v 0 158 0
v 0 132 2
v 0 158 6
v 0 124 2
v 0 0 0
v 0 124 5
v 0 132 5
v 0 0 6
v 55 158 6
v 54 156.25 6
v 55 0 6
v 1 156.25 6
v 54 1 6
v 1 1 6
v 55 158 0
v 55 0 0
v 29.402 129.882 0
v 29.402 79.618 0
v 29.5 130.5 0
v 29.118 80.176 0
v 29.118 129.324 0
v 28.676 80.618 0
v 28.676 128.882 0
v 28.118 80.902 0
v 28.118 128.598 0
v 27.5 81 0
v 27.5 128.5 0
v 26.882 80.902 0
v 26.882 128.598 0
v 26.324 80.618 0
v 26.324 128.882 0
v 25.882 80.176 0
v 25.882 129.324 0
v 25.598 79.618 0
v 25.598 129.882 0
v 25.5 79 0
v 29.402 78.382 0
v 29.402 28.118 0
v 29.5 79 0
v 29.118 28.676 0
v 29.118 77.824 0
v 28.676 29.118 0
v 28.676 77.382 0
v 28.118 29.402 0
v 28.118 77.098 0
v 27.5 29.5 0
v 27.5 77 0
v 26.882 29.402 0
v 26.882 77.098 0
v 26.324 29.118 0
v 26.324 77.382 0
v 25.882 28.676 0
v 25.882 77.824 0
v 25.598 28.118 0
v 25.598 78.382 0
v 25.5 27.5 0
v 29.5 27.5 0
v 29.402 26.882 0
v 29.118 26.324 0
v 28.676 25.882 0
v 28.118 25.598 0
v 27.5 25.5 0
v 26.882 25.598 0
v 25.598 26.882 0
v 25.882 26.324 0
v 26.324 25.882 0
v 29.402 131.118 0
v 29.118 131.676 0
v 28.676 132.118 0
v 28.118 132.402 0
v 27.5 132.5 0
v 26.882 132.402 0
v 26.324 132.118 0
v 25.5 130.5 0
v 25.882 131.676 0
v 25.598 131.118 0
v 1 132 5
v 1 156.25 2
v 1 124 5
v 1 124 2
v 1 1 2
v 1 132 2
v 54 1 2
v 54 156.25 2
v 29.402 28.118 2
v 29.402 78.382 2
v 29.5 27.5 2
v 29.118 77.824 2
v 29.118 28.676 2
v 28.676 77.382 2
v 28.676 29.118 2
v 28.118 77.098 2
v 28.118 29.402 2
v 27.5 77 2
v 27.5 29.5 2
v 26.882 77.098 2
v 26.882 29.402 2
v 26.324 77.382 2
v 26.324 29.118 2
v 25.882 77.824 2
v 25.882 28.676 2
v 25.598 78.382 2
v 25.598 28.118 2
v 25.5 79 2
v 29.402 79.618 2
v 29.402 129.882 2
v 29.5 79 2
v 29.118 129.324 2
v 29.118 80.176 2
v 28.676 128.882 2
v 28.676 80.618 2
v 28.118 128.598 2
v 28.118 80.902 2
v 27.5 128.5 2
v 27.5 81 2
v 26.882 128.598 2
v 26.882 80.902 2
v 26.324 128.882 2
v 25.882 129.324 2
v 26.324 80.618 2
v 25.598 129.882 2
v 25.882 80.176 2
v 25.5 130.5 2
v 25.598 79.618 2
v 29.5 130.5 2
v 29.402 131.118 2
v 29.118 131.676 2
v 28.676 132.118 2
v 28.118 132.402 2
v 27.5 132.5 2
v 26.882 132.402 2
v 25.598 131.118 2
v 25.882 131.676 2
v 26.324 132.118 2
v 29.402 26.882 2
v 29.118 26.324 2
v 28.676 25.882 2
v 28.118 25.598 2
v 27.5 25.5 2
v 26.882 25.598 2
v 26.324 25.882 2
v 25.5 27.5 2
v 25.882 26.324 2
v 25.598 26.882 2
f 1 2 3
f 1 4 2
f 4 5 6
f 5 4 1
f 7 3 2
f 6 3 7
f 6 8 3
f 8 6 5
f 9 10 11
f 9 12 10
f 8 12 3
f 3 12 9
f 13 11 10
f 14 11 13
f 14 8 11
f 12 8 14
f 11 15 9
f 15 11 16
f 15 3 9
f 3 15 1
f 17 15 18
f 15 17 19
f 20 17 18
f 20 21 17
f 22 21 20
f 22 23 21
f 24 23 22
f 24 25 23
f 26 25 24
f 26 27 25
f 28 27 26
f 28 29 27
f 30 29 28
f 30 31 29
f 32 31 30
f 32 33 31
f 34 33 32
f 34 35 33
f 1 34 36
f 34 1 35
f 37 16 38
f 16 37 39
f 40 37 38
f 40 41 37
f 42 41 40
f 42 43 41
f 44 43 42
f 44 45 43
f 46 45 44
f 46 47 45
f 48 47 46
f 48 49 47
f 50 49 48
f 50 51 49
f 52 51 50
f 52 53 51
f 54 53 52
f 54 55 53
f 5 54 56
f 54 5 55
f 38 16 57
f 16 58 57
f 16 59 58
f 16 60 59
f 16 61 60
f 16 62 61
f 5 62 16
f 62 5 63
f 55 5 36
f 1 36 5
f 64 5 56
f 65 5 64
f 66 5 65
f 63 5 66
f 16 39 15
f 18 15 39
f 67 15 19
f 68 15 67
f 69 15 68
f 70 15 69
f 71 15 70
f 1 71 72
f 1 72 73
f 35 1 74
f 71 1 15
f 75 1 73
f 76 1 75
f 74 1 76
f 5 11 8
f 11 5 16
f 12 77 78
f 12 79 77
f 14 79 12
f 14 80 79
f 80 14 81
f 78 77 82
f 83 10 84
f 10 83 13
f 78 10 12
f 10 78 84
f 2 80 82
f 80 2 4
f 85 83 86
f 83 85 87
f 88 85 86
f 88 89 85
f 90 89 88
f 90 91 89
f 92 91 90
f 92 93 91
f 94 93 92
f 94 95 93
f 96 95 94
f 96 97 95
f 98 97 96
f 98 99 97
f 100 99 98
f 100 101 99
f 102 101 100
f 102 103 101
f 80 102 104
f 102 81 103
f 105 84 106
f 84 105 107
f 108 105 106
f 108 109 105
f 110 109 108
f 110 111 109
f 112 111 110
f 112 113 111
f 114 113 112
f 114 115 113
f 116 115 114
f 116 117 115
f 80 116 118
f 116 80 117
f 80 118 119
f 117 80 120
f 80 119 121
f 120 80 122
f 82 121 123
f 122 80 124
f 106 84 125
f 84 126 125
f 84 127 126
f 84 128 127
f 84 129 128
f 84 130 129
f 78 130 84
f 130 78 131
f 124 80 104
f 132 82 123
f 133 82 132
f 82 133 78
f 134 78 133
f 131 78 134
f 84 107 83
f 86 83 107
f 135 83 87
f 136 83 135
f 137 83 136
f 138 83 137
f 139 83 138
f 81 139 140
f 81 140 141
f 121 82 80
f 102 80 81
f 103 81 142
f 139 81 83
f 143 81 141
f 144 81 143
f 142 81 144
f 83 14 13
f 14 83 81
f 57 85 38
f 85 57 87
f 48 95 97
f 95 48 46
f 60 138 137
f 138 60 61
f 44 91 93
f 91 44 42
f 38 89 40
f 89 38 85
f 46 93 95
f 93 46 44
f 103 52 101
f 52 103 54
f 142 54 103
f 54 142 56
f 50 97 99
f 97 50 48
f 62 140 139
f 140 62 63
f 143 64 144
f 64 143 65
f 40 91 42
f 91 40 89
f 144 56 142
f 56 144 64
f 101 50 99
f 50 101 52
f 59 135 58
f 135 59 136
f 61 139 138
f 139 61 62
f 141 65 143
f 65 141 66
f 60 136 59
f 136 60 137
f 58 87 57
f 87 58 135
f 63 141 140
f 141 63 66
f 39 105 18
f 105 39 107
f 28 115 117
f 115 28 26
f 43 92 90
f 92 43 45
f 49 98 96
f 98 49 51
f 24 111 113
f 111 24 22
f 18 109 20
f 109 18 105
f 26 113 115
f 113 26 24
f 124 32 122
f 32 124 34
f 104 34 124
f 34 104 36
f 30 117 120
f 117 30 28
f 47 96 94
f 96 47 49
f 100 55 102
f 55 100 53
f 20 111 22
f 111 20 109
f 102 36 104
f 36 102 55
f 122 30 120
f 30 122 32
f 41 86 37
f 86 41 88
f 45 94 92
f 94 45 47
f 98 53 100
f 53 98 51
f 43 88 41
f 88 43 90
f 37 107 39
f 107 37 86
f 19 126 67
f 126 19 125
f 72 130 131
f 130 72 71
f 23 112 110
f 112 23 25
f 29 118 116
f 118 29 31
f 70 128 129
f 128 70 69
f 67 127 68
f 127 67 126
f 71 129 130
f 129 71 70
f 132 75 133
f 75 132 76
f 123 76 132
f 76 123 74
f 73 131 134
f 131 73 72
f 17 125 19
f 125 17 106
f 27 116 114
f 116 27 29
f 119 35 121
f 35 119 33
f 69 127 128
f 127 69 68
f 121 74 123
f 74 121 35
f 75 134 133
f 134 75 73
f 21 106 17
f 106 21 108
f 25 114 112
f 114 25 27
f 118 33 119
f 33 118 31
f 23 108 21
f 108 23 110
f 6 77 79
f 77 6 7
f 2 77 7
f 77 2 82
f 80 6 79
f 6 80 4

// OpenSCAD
$fn = 20;
wallHeight = 6;
postDiameter = 2;

difference()
{
    cube([55,158,wallHeight],false);
    
    //Carve out the cube
    translate([1,1,2]) cube([53,155.25,wallHeight],false);
    
    translate([27.5,27.5,-2]) cylinder(wallHeight,postDiameter,postDiameter);
 
 
    translate([27.5,79,-2]) cylinder(wallHeight,postDiameter,postDiameter);

    translate([27.5,130.5,-2]) cylinder(wallHeight,postDiameter,postDiameter);


    //translate([-2,21,2]) cube([3,8,3],false);
    translate([-2,124,2]) cube([3,8,3],false);
}
